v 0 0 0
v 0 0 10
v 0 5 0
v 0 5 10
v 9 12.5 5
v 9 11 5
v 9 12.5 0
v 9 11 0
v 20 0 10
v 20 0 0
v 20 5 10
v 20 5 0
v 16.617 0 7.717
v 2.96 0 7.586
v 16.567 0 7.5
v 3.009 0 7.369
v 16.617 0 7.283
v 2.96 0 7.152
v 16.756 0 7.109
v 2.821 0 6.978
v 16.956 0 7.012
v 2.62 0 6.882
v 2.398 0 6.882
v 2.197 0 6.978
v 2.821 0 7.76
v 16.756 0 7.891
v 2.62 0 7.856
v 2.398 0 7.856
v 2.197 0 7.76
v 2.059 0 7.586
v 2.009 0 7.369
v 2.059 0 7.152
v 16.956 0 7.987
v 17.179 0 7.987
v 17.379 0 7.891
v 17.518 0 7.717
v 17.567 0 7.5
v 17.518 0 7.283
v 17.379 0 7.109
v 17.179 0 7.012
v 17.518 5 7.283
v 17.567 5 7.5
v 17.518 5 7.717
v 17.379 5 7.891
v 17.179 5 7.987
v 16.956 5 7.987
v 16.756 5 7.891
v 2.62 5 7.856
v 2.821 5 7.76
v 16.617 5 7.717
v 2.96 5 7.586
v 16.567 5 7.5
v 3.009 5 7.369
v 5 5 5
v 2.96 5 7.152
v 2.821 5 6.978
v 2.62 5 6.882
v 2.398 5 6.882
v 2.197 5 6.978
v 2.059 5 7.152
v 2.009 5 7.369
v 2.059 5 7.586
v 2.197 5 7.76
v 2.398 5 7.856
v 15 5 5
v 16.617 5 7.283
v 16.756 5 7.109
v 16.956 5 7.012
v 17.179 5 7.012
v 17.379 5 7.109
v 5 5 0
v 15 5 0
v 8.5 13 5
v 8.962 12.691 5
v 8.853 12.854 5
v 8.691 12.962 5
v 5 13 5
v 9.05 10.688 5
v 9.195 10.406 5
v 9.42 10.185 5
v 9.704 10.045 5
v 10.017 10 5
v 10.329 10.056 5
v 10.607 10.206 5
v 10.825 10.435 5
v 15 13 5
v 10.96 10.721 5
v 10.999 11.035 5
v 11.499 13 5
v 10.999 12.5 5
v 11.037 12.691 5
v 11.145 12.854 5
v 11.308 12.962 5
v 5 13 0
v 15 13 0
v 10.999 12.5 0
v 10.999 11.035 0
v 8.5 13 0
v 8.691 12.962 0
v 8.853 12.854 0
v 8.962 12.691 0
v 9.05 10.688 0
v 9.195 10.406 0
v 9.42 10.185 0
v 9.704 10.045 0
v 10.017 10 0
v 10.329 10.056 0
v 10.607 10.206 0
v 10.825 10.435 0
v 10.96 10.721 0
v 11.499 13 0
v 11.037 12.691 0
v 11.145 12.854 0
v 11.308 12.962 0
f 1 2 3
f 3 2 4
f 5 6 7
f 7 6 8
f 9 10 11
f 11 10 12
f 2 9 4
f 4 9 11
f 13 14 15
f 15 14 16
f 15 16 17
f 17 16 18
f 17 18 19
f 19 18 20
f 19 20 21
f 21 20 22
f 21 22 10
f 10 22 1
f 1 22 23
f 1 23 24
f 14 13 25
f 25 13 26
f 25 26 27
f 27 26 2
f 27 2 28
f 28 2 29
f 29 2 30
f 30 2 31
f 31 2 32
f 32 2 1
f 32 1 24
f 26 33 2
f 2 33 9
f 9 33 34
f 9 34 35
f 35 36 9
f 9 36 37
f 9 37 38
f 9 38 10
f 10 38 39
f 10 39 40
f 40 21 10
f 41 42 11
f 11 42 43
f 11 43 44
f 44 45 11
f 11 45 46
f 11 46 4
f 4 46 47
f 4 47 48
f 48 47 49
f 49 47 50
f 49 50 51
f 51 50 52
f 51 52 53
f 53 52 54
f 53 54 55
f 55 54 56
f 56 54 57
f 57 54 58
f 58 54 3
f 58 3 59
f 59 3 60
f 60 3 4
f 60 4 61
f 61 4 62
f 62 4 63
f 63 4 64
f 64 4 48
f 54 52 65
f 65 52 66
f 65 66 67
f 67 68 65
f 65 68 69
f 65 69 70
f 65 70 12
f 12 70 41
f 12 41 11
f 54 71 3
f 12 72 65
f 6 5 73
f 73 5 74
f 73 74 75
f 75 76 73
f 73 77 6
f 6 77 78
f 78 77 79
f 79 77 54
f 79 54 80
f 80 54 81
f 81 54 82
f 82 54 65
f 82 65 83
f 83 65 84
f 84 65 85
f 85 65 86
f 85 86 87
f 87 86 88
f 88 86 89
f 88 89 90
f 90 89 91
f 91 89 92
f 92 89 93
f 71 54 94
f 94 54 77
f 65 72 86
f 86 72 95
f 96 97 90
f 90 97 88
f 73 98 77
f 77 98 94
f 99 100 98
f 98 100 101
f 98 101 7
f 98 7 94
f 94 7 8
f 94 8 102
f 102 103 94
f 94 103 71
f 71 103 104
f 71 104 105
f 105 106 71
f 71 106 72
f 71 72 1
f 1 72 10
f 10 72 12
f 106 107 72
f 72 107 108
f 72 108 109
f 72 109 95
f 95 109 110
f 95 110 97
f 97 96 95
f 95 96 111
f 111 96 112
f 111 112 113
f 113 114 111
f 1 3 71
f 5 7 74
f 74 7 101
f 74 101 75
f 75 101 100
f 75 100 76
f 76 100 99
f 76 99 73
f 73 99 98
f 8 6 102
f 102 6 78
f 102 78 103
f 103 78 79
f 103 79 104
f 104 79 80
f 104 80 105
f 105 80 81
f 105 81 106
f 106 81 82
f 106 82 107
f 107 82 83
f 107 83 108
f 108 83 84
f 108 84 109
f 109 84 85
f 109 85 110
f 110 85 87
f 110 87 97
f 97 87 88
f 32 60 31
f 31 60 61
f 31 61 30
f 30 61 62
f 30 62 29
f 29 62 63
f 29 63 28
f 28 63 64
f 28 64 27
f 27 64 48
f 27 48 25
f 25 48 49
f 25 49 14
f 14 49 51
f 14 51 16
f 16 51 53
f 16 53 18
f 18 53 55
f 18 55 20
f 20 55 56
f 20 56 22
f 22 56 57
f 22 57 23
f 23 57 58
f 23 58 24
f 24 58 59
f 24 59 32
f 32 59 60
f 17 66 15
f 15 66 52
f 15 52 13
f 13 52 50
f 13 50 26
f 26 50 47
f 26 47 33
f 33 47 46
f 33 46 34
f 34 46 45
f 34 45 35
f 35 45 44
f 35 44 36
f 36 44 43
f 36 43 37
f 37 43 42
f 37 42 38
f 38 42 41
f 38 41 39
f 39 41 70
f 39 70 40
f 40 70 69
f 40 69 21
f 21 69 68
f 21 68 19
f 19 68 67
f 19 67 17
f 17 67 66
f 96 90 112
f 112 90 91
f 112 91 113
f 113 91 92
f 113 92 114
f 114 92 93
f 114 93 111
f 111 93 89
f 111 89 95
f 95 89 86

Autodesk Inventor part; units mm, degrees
ref_plane "YZ Plane" through (0, 0, 0) normal (1, 0, 0) x (0, 1, 0)
ref_plane "XZ Plane" through (0, 0, 0) normal (0, 1, 0) x (-1, 0, 0)
ref_plane "XY Plane" through (0, 0, 0) normal (0, 0, 1) x (1, 0, 0)
sketch "Sketch1" plane through (0, 0, 0) normal (0, 1, 0) x (-1, 0, 0)
  line L0 (0, 0) -> (-20, 0)
  line L1 (-20, 0) -> (-20, 10)
  line L2 (-20, 10) -> (0, 10)
  line L3 (0, 10) -> (0, 0)
  dimension "d0" = 20
  dimension "d1" = 10
extrude "Extrusion1" add sketch "Sketch1" along normal blind 5
sketch "Sketch2" plane through (0, 5, 0) normal (0, 1, 0) x (1, 0, 0)
  line L0 (20, 0) -> (0, 0) projected
  line L1 (4.9996, 0) -> (14.9996, 0)
  line L2 (14.9996, 0) -> (14.9996, -5)
  line L3 (14.9996, -5) -> (4.9996, -5)
  line L4 (4.9996, -5) -> (4.9996, 0)
  dimension "d4" = 10
  dimension "d5" = 5
extrude "Extrusion2" add sketch "Sketch2" along normal blind 8
sketch "Sketch3" plane through (0, 13, 0) normal (0, 1, 0) x (1, 0, 0)
  point P0 (0, 0)
sketch "Sketch4" plane through (4.9996, 5, 5) normal (0, 0, 1) x (1, 0, 0)
  circle A0 centre (5, 5.9999) radius 1
  point P0 (-4.9996, -5)
  dimension "d8" = 2
hole "Hole1" at (9.9996, 10.9999, 5) direction (0, 0, -1) diameter 2 end through all
sketch "Sketch5" plane through (4.9996, 5, 5) normal (0, 0, 1) x (1, 0, 0)
  circle A0 centre (5, 5.9999) radius 1 projected
  line L0 (10, 8) -> (0, 8) projected
  line L1 (4, 5.9999) -> (5.9994, 5.9999)
  line L2 (5.9994, 5.9999) -> (5.9994, 8)
  line L3 (5.9994, 8) -> (4, 8)
  line L4 (4, 8) -> (4, 5.9999)
  point P0 (-4.9996, -5)
extrude "Extrusion3" cut sketch "Sketch5" against normal blind 5.6375 contours L1 A0 | A0 L4 L0 L2 picked at (5.2495, 6.2209)
sketch "Sketch6" plane through (0, 5, 0) normal (0, 1, 0) x (1, 0, 0)
  circle A0 centre (2.5092, -7.369) radius 0.5
  point P0 (0, 0)
  dimension "d18" = 1
hole "Hole2" at (2.5092, 5, 7.369) direction (0, -1, 0) diameter 1 end through all
sketch "Sketch7" plane through (0, 5, 0) normal (0, 1, 0) x (1, 0, 0)
  circle A0 centre (17.0675, -7.4999) radius 0.5
  point P0 (0, 0)
  dimension "d26" = 1
hole "Hole3" at (17.0675, 5, 7.4999) direction (0, -1, 0) diameter 1 end through all
fillet "Fillet1" radius 0.5 2 edges at (10.999, 13, 2.5) (8.9996, 13, 2.5)
equation "\"d14\" = Thickness"
equation "\"BendRadius\" = Thickness"
equation "\"BendReliefWidth\" = Thickness"
equation "\"BendReliefDepth\" = 0.5 * Thickness"
equation "\"CornerReliefSize\" = 4 * Thickness"
equation "\"MinimumRemnant\" = 2 * Thickness"
equation "\"TransitionRadius\" = BendRadius"
equation "\"JacobiRadiusSize\" = BendRadius"
equation "\"GapSize\" = Thickness"
equation "\"Thickness\" = 3.048"
properties part number "swiatlowod_uchwyt"
